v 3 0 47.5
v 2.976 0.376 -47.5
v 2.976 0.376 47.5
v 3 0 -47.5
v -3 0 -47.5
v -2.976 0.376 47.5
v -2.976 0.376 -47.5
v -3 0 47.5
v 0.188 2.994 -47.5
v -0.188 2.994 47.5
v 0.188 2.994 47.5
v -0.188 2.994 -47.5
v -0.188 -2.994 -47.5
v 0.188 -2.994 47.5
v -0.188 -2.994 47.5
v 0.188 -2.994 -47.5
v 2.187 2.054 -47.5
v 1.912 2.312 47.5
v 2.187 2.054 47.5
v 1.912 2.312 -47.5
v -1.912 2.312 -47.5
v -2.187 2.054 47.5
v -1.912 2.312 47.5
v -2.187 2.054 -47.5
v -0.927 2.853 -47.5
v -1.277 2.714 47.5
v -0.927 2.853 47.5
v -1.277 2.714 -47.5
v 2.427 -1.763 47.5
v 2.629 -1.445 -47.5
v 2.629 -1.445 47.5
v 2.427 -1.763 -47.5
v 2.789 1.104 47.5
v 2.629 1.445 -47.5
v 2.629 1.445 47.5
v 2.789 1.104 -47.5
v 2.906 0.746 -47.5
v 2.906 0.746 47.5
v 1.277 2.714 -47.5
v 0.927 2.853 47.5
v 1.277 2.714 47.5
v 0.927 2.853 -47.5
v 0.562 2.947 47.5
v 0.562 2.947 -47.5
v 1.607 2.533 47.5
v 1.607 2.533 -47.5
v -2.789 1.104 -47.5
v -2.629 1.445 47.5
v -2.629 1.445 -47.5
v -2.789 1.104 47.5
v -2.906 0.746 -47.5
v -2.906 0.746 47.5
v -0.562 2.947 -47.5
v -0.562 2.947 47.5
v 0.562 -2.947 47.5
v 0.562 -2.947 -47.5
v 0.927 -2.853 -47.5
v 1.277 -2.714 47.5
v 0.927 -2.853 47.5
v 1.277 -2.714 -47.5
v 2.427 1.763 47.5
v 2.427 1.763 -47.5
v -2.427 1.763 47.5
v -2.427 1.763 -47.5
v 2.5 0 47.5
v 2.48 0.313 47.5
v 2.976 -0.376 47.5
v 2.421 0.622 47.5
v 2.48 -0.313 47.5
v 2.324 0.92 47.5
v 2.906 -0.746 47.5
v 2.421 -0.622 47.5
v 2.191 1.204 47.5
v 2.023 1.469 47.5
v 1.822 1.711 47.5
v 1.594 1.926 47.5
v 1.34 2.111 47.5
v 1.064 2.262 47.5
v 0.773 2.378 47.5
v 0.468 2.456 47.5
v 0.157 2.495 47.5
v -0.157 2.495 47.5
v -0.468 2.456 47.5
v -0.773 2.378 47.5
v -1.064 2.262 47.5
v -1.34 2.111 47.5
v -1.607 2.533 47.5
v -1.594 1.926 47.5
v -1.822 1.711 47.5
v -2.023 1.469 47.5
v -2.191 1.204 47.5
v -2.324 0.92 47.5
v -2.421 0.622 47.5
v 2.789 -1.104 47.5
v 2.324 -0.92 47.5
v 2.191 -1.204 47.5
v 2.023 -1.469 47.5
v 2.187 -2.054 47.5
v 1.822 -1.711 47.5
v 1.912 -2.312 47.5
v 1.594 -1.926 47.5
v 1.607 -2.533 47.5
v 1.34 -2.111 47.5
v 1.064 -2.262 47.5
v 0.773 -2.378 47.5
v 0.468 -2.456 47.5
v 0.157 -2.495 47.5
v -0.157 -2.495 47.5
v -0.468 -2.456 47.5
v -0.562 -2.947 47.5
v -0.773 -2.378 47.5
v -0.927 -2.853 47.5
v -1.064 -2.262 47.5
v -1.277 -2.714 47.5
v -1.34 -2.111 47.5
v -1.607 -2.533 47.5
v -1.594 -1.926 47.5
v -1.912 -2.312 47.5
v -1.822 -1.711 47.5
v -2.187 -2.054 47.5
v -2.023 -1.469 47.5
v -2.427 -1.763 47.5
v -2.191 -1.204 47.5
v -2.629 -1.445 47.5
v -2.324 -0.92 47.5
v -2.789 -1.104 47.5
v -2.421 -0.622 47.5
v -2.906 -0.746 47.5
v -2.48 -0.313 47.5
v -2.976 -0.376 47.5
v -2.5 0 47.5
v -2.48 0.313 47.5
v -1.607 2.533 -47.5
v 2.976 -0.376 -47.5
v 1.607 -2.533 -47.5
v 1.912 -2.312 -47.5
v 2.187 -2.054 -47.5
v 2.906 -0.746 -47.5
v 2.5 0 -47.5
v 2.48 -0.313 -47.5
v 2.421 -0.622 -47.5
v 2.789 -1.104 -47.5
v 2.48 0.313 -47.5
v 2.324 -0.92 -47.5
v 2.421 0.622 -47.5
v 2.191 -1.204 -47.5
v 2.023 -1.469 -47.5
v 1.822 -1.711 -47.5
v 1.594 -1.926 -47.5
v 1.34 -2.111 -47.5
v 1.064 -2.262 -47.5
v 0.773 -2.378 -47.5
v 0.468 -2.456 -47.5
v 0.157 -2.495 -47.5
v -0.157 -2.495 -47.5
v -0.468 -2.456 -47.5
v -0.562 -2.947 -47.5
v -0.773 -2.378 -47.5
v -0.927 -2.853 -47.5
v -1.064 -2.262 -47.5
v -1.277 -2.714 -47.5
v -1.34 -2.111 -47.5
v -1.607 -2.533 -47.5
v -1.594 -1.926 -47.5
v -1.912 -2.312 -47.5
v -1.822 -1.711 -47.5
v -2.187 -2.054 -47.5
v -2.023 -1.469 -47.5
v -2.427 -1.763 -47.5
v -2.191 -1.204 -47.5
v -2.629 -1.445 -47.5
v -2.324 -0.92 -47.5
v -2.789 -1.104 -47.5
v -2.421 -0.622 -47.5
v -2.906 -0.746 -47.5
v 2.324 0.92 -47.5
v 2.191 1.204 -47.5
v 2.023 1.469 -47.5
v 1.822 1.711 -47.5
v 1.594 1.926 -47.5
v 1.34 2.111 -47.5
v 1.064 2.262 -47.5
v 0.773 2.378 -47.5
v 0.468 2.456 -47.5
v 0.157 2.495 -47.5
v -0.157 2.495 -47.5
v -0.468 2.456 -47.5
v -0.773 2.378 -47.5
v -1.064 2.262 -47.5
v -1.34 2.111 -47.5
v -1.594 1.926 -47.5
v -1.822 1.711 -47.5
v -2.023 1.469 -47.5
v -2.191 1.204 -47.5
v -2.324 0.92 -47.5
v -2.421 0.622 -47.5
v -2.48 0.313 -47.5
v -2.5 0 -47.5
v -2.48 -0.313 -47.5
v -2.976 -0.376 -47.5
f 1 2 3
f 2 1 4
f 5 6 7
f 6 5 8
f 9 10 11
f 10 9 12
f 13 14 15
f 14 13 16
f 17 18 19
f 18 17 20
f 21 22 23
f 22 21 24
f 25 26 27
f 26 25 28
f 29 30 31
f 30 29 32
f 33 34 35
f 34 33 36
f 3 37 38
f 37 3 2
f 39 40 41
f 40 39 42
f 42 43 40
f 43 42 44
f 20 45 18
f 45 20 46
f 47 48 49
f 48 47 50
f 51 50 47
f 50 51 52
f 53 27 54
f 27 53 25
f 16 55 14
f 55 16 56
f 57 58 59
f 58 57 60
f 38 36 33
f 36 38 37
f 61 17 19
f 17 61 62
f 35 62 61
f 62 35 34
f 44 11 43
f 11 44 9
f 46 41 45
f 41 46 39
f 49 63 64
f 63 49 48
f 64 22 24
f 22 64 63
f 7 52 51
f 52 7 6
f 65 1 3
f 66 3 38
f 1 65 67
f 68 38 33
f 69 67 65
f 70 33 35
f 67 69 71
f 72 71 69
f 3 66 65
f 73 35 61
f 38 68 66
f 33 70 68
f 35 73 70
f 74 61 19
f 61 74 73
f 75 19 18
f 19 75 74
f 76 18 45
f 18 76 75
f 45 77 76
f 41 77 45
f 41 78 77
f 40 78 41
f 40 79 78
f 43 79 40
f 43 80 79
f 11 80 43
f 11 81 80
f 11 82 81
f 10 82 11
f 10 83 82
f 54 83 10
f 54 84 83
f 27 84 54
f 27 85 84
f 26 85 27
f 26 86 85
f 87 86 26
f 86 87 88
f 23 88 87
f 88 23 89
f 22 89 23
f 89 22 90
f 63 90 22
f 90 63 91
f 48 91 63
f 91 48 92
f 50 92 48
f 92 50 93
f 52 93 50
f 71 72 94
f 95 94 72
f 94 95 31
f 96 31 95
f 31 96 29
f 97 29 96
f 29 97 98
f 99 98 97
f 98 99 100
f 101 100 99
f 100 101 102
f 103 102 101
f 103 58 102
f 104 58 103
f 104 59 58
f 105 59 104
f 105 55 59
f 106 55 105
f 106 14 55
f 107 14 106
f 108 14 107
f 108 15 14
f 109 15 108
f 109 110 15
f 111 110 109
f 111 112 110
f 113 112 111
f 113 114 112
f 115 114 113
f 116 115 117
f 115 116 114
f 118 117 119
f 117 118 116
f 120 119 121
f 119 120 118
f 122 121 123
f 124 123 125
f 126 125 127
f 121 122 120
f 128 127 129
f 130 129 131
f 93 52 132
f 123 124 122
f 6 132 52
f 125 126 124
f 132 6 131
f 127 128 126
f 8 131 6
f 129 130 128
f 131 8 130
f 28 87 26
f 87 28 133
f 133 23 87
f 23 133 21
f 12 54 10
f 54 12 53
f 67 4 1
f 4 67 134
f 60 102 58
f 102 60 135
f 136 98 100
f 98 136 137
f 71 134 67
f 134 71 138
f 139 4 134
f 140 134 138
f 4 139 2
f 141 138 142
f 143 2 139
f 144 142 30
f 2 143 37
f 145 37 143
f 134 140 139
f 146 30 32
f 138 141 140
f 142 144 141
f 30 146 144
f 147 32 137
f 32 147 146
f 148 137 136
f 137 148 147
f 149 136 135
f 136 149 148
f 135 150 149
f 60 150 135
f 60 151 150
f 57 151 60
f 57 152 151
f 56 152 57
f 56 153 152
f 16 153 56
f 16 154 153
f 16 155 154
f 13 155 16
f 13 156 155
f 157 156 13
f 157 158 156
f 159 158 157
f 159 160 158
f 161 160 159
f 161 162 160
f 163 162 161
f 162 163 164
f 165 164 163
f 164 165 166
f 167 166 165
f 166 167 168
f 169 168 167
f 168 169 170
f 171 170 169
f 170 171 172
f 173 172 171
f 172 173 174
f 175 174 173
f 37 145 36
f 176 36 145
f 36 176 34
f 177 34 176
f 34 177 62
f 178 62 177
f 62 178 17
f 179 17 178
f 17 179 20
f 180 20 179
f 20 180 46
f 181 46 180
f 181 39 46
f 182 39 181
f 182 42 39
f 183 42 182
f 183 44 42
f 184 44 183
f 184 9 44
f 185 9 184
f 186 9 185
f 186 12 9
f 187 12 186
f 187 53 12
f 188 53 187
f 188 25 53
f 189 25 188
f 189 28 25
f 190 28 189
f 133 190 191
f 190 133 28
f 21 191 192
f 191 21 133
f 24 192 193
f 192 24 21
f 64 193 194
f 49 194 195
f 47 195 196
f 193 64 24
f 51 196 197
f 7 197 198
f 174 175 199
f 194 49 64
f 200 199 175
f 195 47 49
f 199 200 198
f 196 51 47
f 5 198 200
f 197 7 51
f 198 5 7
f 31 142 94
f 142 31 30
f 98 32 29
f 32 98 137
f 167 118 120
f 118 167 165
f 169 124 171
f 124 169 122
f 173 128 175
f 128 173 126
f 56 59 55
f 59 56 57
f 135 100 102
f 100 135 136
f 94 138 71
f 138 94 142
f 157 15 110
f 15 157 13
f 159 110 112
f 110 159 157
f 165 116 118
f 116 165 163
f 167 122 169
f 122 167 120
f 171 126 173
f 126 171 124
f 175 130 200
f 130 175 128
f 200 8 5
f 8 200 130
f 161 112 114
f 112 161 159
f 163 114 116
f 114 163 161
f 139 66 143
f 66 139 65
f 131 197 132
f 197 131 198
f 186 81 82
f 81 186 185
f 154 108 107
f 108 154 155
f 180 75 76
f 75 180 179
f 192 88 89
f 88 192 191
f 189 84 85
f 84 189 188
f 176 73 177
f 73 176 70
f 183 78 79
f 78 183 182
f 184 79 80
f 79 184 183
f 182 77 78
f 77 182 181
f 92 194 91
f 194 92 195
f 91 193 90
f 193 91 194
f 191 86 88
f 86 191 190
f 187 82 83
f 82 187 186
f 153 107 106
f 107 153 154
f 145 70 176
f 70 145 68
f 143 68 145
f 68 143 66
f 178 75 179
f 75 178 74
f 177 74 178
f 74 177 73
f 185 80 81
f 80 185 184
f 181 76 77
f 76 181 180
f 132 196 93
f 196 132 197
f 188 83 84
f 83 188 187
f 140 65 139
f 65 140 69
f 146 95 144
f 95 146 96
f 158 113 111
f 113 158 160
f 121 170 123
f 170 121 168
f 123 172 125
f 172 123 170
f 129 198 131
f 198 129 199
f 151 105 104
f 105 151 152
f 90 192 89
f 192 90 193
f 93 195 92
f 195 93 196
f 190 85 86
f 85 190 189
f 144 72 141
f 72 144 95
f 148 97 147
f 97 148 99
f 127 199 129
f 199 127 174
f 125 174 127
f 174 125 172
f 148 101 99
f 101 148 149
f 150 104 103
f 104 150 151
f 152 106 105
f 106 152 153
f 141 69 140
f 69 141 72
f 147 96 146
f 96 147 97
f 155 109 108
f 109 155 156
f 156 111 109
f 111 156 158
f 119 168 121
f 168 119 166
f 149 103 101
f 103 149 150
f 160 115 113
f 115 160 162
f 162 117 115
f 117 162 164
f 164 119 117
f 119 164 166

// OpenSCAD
$fn = 50;


difference() {
	union() {
		translate(v = [0, 0, -47.5000000000]) {
			cylinder(h = 95, r = 3.0000000000);
		}
	}
	union() {
		translate(v = [0, 0, -100.0000000000]) {
			cylinder(h = 200, r = 2.5000000000);
		}
	}
}
